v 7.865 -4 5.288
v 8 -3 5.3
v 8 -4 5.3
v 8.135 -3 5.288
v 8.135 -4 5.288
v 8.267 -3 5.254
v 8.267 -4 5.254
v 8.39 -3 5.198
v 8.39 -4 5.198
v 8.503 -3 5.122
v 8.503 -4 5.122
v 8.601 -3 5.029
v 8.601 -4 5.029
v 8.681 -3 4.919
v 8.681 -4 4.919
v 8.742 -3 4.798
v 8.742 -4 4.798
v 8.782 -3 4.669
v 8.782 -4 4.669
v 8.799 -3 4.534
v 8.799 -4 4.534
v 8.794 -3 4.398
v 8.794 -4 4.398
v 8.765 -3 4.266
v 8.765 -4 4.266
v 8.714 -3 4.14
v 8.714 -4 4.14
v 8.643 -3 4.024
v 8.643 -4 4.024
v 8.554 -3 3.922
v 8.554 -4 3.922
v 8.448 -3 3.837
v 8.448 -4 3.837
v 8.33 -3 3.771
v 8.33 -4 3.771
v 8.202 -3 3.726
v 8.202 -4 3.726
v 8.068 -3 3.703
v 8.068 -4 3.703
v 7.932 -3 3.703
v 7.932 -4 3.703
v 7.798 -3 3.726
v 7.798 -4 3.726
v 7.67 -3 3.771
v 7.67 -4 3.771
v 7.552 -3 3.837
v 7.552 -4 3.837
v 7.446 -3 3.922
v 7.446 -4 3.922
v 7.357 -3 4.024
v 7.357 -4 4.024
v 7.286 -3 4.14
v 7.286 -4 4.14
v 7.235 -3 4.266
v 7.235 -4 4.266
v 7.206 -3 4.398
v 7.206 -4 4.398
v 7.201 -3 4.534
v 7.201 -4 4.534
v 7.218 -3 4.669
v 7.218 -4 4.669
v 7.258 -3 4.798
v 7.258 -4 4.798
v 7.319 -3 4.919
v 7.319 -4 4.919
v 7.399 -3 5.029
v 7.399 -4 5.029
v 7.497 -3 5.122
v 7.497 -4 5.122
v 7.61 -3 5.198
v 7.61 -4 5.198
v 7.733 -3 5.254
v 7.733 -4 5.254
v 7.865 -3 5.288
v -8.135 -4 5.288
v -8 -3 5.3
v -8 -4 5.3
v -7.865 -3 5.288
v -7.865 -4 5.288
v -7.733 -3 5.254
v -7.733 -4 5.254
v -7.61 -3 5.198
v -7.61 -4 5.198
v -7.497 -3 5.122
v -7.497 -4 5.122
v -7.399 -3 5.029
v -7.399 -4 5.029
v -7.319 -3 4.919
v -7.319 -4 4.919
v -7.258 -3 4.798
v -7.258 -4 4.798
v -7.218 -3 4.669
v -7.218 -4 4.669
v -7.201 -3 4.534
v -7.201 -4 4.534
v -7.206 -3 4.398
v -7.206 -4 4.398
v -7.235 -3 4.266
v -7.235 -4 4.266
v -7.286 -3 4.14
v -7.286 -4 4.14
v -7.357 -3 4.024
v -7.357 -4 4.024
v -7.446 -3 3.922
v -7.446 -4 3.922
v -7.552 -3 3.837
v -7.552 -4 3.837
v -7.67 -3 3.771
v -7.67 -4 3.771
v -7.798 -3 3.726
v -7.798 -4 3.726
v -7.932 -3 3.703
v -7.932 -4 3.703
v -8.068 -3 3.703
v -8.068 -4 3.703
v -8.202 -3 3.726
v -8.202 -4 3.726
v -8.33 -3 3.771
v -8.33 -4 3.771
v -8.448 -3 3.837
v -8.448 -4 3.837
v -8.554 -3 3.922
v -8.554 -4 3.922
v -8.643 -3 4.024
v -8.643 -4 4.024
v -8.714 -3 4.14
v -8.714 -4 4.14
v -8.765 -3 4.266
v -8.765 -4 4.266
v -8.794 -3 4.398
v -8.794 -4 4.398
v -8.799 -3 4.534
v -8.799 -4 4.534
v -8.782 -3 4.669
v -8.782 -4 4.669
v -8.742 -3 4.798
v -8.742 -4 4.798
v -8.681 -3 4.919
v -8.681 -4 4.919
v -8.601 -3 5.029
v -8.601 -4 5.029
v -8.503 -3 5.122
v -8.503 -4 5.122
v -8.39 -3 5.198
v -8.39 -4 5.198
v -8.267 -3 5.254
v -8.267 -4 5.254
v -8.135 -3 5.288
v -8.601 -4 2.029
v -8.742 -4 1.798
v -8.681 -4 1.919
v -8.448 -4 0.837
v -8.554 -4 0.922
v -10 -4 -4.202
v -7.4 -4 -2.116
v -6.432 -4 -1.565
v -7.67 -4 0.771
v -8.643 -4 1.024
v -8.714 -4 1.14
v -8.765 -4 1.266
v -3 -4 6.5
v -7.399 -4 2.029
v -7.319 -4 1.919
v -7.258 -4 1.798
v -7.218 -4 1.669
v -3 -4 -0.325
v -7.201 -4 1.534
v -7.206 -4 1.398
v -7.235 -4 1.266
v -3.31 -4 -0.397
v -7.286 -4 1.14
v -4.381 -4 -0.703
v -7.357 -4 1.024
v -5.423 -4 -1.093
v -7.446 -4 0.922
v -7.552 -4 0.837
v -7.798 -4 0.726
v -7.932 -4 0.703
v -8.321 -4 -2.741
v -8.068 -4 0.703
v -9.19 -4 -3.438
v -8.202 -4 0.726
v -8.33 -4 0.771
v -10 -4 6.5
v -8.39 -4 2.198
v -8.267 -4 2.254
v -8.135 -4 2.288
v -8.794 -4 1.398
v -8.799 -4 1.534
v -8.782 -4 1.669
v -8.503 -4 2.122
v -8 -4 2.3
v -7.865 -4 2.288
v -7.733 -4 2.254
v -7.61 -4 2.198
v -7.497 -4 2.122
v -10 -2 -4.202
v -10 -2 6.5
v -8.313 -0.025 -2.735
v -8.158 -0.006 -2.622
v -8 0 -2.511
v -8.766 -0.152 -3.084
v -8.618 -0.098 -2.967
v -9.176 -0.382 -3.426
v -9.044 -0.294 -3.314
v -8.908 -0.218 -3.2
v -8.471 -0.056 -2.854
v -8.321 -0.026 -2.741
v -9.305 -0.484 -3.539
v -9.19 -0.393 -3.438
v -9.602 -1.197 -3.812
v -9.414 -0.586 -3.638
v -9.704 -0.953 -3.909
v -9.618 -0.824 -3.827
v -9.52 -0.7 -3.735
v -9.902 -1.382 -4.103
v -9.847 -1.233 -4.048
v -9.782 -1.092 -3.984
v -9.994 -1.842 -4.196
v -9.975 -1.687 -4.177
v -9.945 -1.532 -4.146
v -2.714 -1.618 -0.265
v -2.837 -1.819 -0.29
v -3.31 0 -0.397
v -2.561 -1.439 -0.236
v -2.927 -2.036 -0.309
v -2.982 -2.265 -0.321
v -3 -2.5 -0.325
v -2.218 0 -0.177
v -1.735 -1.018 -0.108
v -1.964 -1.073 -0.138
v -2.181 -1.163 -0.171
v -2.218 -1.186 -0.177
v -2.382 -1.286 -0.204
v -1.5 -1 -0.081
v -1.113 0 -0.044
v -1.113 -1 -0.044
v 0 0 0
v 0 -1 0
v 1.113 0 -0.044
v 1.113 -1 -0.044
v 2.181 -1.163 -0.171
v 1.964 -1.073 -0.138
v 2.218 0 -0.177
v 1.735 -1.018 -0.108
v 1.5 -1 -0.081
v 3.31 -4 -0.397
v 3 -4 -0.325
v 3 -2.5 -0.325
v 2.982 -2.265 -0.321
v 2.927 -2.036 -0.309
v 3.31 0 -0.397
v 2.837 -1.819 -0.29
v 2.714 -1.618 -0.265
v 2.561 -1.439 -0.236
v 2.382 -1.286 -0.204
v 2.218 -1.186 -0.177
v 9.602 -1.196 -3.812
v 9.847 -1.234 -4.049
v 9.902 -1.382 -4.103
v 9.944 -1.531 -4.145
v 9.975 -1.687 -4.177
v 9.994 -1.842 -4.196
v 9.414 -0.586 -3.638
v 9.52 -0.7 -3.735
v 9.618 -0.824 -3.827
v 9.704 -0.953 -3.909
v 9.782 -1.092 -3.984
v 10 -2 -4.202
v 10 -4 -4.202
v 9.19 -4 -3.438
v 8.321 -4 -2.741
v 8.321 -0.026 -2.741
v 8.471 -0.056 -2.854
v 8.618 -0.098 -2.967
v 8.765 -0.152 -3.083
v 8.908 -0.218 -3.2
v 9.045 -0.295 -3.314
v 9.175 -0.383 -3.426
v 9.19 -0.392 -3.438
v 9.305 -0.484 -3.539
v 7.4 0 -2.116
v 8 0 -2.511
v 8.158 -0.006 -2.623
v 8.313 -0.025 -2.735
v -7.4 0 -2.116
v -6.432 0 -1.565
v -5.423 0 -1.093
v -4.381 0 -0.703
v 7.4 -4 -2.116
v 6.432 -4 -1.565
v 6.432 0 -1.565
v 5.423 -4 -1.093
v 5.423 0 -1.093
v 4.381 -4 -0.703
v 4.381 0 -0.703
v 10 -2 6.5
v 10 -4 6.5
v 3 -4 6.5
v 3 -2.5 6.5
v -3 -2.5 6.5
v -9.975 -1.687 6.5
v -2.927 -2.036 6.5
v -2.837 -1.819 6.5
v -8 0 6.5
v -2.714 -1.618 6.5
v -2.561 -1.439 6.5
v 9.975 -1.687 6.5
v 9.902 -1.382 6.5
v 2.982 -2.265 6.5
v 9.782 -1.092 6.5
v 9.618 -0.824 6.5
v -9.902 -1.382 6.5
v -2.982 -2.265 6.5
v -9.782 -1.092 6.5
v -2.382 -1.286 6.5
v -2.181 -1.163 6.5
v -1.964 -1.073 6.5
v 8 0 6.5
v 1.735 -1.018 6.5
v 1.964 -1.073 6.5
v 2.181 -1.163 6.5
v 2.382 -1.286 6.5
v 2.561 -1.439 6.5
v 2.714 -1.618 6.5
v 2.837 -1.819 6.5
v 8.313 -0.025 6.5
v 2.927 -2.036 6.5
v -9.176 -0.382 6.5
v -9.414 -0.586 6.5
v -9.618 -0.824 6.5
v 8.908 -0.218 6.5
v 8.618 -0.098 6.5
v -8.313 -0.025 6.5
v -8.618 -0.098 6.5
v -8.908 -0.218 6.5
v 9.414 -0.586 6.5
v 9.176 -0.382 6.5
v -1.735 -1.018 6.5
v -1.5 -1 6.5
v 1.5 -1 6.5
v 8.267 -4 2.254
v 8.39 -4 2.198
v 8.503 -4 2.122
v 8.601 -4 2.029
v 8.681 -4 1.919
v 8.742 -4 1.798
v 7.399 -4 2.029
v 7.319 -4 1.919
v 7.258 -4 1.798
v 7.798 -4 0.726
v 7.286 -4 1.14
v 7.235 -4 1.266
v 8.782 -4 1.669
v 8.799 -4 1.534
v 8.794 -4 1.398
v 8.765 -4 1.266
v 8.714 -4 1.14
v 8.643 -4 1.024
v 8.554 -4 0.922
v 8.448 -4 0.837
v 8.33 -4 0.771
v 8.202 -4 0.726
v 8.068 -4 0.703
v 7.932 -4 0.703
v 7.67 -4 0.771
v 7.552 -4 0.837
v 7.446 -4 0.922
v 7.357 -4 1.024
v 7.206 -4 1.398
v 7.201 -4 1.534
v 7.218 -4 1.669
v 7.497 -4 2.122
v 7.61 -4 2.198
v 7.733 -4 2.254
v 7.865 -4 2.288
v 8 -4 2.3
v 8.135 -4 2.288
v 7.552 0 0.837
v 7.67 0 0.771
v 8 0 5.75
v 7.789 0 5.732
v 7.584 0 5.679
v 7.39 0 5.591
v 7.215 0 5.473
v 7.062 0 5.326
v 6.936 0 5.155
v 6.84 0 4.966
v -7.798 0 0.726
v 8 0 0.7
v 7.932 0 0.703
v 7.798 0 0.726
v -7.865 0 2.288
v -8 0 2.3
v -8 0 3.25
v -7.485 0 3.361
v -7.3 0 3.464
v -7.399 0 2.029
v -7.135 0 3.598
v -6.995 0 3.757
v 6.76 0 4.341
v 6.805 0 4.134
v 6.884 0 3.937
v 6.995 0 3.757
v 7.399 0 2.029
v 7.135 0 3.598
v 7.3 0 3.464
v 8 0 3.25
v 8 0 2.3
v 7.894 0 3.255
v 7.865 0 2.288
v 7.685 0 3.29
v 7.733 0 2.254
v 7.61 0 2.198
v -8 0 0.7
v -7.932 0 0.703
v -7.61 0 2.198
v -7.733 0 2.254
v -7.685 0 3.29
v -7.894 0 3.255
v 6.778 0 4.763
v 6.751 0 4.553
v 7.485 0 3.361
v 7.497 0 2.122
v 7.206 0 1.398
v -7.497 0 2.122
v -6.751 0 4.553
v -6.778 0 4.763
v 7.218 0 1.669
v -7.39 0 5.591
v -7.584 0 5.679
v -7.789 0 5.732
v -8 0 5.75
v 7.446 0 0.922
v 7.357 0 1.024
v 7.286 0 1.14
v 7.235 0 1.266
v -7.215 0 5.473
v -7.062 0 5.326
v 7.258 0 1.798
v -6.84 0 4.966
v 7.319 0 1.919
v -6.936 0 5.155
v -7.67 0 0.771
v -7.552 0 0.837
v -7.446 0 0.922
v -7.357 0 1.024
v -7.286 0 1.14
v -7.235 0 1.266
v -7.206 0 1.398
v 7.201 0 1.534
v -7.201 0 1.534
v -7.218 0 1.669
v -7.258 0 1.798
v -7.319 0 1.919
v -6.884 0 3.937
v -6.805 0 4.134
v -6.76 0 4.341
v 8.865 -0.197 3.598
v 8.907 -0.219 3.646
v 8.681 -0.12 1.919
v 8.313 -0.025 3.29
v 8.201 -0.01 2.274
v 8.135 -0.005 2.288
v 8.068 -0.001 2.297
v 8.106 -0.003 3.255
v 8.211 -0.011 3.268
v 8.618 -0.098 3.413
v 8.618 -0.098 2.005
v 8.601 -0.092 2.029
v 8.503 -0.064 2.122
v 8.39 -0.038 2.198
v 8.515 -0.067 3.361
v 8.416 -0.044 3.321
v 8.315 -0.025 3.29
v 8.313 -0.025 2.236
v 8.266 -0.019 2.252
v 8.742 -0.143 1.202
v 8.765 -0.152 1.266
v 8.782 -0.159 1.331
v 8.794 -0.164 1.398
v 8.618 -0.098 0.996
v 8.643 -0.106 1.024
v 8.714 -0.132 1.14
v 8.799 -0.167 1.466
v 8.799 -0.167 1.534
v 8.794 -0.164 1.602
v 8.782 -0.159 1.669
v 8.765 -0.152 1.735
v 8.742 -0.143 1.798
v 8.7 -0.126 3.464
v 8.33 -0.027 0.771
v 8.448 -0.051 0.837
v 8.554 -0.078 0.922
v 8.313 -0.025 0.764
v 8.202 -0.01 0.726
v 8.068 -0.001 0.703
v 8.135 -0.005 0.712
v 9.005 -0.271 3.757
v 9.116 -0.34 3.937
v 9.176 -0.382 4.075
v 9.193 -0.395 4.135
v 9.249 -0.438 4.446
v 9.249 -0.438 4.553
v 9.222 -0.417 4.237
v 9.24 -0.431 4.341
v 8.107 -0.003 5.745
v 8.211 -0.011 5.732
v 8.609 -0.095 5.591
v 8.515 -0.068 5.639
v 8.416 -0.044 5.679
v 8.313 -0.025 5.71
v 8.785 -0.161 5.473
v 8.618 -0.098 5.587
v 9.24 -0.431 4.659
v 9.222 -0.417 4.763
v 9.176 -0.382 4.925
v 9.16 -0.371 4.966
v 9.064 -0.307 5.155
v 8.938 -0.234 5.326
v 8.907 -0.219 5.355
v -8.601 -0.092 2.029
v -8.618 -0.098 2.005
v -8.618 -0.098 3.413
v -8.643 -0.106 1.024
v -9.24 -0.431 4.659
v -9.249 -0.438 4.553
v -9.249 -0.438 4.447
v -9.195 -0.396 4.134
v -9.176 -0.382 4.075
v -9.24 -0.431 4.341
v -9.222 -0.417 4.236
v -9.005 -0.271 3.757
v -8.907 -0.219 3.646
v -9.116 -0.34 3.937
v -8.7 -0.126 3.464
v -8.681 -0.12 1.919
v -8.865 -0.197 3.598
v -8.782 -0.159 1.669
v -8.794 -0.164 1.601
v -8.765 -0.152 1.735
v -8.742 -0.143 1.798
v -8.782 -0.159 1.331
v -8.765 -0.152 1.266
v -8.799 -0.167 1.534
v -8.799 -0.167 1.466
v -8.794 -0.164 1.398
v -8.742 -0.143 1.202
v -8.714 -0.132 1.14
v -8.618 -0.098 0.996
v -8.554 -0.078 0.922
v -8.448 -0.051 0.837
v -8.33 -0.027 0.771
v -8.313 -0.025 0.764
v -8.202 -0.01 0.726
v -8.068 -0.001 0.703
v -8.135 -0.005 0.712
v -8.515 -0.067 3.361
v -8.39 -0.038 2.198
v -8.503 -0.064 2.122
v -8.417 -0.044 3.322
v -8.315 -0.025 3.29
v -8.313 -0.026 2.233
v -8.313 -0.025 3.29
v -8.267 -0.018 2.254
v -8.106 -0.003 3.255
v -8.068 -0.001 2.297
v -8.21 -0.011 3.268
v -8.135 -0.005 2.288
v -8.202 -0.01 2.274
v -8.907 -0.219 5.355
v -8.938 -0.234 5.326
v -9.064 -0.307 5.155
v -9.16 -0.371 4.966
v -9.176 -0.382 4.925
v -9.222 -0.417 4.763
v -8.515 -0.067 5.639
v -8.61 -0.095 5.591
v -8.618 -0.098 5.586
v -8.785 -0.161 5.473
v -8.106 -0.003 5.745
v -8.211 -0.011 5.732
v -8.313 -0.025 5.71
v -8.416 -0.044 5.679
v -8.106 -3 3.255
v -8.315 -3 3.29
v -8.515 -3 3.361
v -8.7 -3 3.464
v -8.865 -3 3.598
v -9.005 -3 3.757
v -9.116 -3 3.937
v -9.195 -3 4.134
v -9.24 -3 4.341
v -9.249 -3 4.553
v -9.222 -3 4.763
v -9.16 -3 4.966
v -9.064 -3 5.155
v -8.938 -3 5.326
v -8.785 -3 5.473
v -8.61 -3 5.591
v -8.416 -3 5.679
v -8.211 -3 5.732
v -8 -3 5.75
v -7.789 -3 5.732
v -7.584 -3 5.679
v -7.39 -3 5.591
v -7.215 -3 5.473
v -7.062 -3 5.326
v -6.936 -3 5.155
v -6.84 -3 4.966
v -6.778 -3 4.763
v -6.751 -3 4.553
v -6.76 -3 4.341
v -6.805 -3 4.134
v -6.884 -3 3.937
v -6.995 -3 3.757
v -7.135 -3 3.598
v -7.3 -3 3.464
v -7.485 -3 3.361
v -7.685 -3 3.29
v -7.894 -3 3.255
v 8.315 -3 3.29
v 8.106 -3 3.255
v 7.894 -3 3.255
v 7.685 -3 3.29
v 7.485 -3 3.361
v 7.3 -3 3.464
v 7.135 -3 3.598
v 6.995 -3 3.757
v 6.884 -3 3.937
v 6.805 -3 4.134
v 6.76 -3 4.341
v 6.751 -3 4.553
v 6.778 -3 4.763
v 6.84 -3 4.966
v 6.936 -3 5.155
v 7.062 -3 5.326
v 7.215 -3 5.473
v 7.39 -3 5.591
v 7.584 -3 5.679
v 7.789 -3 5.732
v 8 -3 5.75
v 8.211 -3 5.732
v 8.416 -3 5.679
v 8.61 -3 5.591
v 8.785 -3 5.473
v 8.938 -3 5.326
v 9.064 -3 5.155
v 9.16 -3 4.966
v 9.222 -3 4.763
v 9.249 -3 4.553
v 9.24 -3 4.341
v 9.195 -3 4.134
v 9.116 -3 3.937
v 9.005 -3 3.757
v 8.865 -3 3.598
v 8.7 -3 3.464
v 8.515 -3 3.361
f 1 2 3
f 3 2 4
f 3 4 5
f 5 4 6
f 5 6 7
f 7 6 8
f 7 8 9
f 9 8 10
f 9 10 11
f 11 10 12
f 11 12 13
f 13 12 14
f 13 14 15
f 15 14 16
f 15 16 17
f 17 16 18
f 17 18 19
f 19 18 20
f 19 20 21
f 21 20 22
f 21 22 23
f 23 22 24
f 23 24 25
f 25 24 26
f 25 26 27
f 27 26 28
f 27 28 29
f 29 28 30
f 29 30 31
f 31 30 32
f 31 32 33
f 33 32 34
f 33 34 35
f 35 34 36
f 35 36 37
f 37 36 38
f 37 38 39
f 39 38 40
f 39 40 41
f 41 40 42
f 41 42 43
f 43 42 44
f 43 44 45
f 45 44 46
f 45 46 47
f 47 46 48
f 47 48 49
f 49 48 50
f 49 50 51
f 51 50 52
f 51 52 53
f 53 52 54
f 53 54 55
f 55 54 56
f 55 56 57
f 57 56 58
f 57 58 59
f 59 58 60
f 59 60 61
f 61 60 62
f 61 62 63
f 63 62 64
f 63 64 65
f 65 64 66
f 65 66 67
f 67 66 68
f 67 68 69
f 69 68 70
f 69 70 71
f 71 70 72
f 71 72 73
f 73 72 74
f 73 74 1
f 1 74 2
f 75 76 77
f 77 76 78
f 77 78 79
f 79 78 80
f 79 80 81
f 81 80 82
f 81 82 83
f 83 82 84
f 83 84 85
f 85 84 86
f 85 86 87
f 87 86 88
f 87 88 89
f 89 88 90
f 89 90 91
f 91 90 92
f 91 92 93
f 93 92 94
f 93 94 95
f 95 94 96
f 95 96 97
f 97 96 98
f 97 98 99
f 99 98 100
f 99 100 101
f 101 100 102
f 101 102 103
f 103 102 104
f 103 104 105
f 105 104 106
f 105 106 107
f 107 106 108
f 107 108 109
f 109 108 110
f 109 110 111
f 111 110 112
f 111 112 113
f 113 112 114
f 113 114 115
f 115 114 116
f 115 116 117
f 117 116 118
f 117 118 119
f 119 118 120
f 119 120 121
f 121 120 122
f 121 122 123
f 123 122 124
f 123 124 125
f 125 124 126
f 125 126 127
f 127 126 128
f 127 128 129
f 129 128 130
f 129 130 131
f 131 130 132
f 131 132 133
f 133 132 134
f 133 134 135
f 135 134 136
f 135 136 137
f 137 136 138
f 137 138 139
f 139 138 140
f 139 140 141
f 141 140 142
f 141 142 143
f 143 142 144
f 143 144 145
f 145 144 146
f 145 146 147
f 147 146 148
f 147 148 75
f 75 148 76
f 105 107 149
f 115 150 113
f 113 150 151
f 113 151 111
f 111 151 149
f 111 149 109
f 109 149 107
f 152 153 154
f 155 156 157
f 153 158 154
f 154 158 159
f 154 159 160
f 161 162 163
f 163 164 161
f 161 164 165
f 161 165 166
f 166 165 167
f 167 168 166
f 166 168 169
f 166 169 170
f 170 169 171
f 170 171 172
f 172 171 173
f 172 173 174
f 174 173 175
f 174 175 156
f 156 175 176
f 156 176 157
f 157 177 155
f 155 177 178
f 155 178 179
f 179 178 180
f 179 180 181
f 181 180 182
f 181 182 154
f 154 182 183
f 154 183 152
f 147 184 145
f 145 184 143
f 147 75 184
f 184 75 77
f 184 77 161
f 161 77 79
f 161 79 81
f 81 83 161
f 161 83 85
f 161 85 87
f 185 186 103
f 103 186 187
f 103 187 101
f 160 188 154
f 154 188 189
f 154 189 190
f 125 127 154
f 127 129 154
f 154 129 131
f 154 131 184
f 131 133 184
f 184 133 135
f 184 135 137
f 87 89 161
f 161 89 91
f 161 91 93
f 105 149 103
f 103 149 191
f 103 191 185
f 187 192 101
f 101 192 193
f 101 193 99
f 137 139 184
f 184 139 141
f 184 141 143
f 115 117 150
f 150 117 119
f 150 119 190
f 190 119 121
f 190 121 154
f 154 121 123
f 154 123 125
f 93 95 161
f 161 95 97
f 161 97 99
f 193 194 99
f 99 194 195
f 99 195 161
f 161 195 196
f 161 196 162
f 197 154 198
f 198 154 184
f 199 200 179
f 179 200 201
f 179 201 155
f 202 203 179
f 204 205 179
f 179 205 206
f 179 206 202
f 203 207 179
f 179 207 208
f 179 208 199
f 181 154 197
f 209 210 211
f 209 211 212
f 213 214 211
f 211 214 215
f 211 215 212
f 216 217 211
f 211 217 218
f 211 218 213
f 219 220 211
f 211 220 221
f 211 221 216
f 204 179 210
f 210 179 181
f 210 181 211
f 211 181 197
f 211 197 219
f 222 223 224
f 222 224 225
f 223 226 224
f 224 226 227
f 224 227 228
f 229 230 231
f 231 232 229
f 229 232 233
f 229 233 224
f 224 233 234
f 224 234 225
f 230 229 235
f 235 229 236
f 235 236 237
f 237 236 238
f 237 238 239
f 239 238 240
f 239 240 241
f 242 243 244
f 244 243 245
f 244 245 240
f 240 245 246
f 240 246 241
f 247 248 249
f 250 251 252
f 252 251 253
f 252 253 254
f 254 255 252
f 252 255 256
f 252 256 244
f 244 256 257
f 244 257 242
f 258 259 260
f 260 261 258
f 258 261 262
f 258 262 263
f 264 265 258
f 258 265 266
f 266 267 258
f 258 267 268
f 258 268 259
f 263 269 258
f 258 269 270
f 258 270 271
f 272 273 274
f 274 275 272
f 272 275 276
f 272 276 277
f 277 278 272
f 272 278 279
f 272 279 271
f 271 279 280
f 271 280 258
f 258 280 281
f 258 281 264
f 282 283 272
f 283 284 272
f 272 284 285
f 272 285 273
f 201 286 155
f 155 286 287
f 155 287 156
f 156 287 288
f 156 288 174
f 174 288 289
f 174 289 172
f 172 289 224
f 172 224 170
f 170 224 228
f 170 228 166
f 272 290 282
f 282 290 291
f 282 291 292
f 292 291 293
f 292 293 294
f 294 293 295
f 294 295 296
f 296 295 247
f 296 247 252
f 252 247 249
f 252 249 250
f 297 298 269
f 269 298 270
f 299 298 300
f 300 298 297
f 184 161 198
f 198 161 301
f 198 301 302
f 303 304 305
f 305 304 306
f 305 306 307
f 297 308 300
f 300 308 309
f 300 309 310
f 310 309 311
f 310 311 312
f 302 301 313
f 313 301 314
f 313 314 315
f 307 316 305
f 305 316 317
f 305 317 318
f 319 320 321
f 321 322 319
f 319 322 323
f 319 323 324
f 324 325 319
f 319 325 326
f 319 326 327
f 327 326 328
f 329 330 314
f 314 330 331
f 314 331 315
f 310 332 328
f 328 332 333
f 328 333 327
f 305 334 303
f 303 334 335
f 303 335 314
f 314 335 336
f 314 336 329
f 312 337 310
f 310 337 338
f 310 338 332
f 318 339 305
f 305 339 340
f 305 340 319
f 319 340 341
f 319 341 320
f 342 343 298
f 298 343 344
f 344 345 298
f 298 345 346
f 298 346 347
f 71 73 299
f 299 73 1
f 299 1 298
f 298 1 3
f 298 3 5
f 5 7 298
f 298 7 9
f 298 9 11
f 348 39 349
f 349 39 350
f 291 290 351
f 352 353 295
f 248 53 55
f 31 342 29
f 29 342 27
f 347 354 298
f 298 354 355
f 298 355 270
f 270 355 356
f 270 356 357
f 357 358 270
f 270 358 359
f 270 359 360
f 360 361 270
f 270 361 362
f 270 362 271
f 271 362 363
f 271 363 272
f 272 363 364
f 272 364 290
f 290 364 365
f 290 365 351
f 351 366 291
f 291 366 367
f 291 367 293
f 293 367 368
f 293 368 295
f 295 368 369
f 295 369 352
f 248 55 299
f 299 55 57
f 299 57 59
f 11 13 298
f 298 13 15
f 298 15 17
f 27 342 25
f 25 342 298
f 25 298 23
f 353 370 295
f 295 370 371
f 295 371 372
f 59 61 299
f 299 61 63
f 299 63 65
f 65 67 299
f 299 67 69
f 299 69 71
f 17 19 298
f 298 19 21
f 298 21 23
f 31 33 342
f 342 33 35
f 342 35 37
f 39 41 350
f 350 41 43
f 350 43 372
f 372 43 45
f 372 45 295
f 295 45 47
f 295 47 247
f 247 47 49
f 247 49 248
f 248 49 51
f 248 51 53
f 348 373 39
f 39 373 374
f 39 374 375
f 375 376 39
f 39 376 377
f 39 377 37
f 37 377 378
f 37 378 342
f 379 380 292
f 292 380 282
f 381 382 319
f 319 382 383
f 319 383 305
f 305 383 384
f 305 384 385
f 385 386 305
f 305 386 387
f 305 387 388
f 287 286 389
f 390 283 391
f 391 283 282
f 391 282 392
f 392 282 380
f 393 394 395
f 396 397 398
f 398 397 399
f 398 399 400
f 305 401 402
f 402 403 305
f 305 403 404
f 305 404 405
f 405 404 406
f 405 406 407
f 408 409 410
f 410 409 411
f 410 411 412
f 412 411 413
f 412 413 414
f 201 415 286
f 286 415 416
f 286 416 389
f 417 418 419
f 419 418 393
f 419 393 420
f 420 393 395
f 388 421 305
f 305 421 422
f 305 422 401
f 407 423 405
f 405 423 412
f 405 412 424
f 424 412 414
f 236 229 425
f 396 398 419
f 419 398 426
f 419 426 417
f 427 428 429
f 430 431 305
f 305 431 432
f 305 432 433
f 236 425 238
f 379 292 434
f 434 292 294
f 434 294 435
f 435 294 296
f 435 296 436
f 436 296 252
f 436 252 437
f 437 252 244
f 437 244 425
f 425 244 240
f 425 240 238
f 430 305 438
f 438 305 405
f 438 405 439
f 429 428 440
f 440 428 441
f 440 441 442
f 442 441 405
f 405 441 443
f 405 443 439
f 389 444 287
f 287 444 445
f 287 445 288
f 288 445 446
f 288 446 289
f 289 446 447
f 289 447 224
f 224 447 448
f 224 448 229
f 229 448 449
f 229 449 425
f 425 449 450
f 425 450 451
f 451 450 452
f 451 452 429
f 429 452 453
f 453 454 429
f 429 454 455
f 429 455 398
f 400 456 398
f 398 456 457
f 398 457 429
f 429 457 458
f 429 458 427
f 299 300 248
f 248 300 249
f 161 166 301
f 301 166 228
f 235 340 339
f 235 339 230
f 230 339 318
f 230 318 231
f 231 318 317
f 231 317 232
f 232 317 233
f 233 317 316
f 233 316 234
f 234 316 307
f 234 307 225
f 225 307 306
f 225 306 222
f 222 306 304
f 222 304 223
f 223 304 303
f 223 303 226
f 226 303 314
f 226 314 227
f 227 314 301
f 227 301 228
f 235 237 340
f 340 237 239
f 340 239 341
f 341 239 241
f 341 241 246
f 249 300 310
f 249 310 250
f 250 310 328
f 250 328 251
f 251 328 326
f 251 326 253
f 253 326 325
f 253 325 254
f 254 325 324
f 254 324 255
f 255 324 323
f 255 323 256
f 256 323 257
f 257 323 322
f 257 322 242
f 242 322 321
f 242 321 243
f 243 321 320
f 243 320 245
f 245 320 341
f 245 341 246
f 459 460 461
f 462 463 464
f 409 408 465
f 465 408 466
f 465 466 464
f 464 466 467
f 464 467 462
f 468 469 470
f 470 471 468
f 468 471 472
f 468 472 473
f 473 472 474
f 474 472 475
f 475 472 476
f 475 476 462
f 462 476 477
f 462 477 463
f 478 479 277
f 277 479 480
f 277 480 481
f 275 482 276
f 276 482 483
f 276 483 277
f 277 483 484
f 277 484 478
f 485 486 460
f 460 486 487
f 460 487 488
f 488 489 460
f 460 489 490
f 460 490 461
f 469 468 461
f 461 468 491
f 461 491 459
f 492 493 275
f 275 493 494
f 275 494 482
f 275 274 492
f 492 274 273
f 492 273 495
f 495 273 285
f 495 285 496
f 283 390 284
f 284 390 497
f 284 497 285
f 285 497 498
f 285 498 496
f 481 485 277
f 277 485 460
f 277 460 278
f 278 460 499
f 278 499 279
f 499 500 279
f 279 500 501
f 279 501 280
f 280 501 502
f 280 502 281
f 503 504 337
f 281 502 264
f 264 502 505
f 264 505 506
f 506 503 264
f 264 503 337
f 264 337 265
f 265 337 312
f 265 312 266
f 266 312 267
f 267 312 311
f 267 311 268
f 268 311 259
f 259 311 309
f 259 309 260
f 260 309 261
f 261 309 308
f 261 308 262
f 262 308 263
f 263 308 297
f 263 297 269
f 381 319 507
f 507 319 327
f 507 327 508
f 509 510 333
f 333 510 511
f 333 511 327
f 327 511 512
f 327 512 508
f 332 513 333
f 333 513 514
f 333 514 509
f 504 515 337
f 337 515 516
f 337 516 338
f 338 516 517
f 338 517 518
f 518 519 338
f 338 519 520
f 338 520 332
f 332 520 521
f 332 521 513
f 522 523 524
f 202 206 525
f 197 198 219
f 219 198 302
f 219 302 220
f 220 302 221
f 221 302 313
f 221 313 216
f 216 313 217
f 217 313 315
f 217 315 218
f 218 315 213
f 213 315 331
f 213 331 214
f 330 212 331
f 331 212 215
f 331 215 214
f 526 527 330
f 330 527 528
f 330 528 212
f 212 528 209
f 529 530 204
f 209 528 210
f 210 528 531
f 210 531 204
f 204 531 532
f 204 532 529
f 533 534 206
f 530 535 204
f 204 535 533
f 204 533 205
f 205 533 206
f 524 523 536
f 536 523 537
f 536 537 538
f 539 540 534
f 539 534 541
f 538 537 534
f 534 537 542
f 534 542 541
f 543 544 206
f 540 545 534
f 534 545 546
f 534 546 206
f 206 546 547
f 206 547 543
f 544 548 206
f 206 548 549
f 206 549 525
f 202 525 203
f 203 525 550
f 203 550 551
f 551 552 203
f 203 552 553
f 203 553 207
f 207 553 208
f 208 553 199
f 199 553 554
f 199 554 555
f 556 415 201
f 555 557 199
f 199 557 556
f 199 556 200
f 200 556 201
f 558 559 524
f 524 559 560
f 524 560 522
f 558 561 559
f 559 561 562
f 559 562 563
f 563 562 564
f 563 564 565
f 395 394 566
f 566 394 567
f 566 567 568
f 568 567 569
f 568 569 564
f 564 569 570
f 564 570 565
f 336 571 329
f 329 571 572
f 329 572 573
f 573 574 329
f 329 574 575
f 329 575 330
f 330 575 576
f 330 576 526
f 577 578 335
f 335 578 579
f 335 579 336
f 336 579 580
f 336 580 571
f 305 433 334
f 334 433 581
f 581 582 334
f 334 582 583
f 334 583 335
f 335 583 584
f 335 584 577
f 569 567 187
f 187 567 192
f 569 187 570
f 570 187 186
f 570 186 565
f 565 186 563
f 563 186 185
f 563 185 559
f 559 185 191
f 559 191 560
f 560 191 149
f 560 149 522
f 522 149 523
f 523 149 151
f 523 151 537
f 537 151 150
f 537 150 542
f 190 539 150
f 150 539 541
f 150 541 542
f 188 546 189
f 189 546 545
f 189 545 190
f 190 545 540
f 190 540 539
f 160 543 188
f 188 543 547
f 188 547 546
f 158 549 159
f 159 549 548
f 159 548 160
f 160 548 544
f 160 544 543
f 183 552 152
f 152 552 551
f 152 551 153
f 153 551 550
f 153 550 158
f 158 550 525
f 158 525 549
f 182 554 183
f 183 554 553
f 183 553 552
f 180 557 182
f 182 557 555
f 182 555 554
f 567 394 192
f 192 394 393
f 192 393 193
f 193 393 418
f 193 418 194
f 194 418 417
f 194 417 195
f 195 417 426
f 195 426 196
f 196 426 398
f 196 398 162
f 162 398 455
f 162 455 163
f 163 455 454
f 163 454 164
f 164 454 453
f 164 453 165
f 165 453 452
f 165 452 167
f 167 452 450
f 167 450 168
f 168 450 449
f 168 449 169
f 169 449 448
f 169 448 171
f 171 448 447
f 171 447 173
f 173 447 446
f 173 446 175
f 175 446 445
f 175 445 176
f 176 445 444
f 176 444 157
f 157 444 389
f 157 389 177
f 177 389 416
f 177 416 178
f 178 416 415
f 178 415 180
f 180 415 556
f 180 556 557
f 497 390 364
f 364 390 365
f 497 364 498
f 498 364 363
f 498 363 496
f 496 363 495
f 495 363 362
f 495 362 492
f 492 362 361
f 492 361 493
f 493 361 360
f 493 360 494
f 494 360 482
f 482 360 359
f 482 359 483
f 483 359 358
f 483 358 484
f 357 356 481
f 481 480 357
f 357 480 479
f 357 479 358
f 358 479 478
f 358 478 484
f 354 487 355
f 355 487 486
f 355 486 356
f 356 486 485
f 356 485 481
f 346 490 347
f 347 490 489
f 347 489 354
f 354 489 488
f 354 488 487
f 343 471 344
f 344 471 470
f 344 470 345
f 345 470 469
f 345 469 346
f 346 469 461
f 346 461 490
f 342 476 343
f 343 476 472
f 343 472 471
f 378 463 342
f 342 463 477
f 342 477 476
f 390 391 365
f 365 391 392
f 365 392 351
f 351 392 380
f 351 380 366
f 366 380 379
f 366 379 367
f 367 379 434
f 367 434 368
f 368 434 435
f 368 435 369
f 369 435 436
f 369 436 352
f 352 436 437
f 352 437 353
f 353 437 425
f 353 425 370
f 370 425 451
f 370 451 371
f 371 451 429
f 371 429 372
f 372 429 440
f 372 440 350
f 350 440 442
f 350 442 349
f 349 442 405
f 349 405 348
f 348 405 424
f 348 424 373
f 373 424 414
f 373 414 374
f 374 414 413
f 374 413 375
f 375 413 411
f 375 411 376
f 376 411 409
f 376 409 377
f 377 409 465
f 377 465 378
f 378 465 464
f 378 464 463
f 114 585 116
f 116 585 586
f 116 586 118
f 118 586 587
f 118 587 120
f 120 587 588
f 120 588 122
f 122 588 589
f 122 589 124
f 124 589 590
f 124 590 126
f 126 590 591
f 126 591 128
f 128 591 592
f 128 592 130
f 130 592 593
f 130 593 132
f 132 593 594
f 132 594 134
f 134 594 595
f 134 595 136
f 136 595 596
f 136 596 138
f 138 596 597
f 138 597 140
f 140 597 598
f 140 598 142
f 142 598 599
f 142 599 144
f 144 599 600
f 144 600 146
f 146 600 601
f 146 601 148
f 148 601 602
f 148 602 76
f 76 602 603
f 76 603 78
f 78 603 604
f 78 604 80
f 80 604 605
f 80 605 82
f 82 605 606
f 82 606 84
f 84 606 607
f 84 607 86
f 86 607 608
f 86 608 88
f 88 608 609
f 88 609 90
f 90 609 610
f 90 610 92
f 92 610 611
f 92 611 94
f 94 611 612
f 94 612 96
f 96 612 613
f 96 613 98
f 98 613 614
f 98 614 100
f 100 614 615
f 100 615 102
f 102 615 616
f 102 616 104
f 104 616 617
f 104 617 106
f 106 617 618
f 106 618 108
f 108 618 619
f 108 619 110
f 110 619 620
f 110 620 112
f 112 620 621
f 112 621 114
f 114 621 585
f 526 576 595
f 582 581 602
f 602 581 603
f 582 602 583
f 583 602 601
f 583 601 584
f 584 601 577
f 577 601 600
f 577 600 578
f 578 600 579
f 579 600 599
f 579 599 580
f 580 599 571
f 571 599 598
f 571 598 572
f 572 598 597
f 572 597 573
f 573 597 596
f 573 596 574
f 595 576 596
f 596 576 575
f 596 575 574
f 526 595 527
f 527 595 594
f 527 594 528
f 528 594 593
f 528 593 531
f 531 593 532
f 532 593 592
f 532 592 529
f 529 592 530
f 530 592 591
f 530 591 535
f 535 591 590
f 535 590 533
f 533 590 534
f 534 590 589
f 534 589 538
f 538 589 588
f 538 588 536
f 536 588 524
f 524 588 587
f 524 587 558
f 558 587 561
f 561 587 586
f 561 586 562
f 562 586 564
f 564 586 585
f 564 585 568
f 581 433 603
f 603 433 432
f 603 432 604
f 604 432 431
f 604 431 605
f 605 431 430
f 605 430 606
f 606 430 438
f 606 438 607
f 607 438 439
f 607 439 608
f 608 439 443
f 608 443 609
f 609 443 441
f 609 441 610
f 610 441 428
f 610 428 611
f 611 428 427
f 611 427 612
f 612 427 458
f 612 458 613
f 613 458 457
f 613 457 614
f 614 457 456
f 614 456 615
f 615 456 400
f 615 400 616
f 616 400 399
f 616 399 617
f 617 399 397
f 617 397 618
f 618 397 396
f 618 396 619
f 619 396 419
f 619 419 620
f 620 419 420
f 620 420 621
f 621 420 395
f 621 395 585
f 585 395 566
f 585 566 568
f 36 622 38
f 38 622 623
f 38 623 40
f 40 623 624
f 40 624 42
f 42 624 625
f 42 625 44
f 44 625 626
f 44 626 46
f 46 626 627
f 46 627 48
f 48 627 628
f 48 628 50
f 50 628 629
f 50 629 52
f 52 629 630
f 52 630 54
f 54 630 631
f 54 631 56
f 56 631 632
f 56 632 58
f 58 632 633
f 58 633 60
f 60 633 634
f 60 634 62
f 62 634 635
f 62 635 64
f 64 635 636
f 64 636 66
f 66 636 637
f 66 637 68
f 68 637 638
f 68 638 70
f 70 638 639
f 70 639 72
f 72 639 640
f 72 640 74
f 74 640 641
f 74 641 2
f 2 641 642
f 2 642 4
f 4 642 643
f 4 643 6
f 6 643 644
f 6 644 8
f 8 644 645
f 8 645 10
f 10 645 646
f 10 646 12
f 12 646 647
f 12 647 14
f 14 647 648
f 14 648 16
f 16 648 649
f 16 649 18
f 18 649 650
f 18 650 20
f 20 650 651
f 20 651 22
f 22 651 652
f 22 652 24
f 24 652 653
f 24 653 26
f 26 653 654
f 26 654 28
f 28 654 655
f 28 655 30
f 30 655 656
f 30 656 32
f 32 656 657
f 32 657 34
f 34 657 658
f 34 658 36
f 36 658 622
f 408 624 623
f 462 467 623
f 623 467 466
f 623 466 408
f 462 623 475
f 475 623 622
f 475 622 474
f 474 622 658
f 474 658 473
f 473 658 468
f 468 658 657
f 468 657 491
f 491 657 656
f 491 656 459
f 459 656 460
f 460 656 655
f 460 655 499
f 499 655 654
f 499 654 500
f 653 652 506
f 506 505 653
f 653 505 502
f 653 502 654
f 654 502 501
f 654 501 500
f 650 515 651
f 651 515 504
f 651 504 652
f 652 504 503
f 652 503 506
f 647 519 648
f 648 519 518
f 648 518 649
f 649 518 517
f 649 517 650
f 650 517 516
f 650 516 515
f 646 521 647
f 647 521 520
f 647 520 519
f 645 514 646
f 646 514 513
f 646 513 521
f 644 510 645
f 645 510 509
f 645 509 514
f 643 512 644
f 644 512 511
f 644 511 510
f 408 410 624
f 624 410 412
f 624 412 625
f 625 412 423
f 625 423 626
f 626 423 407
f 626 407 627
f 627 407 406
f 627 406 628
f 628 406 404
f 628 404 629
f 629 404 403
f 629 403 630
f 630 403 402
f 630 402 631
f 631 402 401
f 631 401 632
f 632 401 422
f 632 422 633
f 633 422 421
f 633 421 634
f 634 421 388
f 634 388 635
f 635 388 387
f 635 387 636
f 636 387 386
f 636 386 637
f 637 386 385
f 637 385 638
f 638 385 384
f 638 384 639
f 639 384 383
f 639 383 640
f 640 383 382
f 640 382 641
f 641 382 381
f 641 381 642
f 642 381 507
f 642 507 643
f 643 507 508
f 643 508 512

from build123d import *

# Parameters (mm, degrees)
BOSS_EXTRUDE1_DEPTH = 4
CUT_EXTRUDE1_START  = 6.5
CUT_EXTRUDE1_DEPTH  = 20.079745625
FILLET1_R           = 2
SKETCH2_R           = 0.8
SCREW_HOLES_DEPTH   = 13.579745788
SKETCH4_R           = 1.25
SCREW_HEADS_DEPTH   = 3


with BuildPart() as part:
    # Sketch5 → Boss-Extrude1 (new body)
    with BuildSketch(Plane(origin=(0, 0, 0), x_dir=(1, 0, 0), z_dir=(0, 1, 0))):
        with BuildLine():
            Line((-10, -6.5), (10, -6.5))
            Line((10, -6.5), (10, 4.202041029))
            ThreePointArc((10, 4.202041029), (0, 0), (-10, 4.202041029))
            Line((-10, 4.202041029), (-10, -6.5))
        make_face()
    extrude(amount=-BOSS_EXTRUDE1_DEPTH)

    # Sketch3 → Cut-Extrude1 (cut, through all)
    with BuildSketch(Plane.XY.offset(CUT_EXTRUDE1_START)):
        with BuildLine():
            Line((3, -4), (3, -2.5))
            ThreePointArc((3, -2.5), (2.560660172, -1.439339828), (1.5, -1))
            Line((1.5, -1), (-1.5, -1))
            ThreePointArc((-1.5, -1), (-2.560660172, -1.439339828), (-3, -2.5))
            Line((-3, -2.5), (-3, -4))
            Line((-3, -4), (0, -4))
            Line((0, -4), (3, -4))
        make_face()
    extrude(amount=-CUT_EXTRUDE1_DEPTH, mode=Mode.SUBTRACT)

    # Fillet1
    fillet1_edges = [part.edges().sort_by_distance(p)[0] for p in [
        (10, 0, 1.148979486),
        (-10, 0, 1.148979486),
    ]]
    fillet(fillet1_edges, radius=FILLET1_R)

    # Sketch2 → Screw Holes (cut, through all)
    with BuildSketch(Plane(origin=(0, 0, 0), x_dir=(1, 0, 0), z_dir=(0, 1, 0))):
        with Locations(Location((-8, -1.5, 0), (0, 0, 270))):
            Circle(SKETCH2_R)
        with Locations(Location((8, -1.5, 0), (0, 0, 270))):
            Circle(SKETCH2_R)
        with Locations(Location((8, -4.5, 0), (0, 0, 270))):
            Circle(SKETCH2_R)
        with Locations(Location((-8, -4.5, 0), (0, 0, 270))):
            Circle(SKETCH2_R)
    extrude(amount=-SCREW_HOLES_DEPTH, mode=Mode.SUBTRACT)

    # Sketch4 → Screw Heads (cut)
    with BuildSketch(Plane(origin=(0, 0, 0), x_dir=(1, 0, 0), z_dir=(0, 1, 0))):
        with Locations(Location((-8, -4.5, 0), (0, 0, 270))):
            Circle(SKETCH4_R)
        with Locations(Location((8, -4.5, 0), (0, 0, 270))):
            Circle(SKETCH4_R)
    extrude(amount=-SCREW_HEADS_DEPTH, mode=Mode.SUBTRACT)


solid = part.part
